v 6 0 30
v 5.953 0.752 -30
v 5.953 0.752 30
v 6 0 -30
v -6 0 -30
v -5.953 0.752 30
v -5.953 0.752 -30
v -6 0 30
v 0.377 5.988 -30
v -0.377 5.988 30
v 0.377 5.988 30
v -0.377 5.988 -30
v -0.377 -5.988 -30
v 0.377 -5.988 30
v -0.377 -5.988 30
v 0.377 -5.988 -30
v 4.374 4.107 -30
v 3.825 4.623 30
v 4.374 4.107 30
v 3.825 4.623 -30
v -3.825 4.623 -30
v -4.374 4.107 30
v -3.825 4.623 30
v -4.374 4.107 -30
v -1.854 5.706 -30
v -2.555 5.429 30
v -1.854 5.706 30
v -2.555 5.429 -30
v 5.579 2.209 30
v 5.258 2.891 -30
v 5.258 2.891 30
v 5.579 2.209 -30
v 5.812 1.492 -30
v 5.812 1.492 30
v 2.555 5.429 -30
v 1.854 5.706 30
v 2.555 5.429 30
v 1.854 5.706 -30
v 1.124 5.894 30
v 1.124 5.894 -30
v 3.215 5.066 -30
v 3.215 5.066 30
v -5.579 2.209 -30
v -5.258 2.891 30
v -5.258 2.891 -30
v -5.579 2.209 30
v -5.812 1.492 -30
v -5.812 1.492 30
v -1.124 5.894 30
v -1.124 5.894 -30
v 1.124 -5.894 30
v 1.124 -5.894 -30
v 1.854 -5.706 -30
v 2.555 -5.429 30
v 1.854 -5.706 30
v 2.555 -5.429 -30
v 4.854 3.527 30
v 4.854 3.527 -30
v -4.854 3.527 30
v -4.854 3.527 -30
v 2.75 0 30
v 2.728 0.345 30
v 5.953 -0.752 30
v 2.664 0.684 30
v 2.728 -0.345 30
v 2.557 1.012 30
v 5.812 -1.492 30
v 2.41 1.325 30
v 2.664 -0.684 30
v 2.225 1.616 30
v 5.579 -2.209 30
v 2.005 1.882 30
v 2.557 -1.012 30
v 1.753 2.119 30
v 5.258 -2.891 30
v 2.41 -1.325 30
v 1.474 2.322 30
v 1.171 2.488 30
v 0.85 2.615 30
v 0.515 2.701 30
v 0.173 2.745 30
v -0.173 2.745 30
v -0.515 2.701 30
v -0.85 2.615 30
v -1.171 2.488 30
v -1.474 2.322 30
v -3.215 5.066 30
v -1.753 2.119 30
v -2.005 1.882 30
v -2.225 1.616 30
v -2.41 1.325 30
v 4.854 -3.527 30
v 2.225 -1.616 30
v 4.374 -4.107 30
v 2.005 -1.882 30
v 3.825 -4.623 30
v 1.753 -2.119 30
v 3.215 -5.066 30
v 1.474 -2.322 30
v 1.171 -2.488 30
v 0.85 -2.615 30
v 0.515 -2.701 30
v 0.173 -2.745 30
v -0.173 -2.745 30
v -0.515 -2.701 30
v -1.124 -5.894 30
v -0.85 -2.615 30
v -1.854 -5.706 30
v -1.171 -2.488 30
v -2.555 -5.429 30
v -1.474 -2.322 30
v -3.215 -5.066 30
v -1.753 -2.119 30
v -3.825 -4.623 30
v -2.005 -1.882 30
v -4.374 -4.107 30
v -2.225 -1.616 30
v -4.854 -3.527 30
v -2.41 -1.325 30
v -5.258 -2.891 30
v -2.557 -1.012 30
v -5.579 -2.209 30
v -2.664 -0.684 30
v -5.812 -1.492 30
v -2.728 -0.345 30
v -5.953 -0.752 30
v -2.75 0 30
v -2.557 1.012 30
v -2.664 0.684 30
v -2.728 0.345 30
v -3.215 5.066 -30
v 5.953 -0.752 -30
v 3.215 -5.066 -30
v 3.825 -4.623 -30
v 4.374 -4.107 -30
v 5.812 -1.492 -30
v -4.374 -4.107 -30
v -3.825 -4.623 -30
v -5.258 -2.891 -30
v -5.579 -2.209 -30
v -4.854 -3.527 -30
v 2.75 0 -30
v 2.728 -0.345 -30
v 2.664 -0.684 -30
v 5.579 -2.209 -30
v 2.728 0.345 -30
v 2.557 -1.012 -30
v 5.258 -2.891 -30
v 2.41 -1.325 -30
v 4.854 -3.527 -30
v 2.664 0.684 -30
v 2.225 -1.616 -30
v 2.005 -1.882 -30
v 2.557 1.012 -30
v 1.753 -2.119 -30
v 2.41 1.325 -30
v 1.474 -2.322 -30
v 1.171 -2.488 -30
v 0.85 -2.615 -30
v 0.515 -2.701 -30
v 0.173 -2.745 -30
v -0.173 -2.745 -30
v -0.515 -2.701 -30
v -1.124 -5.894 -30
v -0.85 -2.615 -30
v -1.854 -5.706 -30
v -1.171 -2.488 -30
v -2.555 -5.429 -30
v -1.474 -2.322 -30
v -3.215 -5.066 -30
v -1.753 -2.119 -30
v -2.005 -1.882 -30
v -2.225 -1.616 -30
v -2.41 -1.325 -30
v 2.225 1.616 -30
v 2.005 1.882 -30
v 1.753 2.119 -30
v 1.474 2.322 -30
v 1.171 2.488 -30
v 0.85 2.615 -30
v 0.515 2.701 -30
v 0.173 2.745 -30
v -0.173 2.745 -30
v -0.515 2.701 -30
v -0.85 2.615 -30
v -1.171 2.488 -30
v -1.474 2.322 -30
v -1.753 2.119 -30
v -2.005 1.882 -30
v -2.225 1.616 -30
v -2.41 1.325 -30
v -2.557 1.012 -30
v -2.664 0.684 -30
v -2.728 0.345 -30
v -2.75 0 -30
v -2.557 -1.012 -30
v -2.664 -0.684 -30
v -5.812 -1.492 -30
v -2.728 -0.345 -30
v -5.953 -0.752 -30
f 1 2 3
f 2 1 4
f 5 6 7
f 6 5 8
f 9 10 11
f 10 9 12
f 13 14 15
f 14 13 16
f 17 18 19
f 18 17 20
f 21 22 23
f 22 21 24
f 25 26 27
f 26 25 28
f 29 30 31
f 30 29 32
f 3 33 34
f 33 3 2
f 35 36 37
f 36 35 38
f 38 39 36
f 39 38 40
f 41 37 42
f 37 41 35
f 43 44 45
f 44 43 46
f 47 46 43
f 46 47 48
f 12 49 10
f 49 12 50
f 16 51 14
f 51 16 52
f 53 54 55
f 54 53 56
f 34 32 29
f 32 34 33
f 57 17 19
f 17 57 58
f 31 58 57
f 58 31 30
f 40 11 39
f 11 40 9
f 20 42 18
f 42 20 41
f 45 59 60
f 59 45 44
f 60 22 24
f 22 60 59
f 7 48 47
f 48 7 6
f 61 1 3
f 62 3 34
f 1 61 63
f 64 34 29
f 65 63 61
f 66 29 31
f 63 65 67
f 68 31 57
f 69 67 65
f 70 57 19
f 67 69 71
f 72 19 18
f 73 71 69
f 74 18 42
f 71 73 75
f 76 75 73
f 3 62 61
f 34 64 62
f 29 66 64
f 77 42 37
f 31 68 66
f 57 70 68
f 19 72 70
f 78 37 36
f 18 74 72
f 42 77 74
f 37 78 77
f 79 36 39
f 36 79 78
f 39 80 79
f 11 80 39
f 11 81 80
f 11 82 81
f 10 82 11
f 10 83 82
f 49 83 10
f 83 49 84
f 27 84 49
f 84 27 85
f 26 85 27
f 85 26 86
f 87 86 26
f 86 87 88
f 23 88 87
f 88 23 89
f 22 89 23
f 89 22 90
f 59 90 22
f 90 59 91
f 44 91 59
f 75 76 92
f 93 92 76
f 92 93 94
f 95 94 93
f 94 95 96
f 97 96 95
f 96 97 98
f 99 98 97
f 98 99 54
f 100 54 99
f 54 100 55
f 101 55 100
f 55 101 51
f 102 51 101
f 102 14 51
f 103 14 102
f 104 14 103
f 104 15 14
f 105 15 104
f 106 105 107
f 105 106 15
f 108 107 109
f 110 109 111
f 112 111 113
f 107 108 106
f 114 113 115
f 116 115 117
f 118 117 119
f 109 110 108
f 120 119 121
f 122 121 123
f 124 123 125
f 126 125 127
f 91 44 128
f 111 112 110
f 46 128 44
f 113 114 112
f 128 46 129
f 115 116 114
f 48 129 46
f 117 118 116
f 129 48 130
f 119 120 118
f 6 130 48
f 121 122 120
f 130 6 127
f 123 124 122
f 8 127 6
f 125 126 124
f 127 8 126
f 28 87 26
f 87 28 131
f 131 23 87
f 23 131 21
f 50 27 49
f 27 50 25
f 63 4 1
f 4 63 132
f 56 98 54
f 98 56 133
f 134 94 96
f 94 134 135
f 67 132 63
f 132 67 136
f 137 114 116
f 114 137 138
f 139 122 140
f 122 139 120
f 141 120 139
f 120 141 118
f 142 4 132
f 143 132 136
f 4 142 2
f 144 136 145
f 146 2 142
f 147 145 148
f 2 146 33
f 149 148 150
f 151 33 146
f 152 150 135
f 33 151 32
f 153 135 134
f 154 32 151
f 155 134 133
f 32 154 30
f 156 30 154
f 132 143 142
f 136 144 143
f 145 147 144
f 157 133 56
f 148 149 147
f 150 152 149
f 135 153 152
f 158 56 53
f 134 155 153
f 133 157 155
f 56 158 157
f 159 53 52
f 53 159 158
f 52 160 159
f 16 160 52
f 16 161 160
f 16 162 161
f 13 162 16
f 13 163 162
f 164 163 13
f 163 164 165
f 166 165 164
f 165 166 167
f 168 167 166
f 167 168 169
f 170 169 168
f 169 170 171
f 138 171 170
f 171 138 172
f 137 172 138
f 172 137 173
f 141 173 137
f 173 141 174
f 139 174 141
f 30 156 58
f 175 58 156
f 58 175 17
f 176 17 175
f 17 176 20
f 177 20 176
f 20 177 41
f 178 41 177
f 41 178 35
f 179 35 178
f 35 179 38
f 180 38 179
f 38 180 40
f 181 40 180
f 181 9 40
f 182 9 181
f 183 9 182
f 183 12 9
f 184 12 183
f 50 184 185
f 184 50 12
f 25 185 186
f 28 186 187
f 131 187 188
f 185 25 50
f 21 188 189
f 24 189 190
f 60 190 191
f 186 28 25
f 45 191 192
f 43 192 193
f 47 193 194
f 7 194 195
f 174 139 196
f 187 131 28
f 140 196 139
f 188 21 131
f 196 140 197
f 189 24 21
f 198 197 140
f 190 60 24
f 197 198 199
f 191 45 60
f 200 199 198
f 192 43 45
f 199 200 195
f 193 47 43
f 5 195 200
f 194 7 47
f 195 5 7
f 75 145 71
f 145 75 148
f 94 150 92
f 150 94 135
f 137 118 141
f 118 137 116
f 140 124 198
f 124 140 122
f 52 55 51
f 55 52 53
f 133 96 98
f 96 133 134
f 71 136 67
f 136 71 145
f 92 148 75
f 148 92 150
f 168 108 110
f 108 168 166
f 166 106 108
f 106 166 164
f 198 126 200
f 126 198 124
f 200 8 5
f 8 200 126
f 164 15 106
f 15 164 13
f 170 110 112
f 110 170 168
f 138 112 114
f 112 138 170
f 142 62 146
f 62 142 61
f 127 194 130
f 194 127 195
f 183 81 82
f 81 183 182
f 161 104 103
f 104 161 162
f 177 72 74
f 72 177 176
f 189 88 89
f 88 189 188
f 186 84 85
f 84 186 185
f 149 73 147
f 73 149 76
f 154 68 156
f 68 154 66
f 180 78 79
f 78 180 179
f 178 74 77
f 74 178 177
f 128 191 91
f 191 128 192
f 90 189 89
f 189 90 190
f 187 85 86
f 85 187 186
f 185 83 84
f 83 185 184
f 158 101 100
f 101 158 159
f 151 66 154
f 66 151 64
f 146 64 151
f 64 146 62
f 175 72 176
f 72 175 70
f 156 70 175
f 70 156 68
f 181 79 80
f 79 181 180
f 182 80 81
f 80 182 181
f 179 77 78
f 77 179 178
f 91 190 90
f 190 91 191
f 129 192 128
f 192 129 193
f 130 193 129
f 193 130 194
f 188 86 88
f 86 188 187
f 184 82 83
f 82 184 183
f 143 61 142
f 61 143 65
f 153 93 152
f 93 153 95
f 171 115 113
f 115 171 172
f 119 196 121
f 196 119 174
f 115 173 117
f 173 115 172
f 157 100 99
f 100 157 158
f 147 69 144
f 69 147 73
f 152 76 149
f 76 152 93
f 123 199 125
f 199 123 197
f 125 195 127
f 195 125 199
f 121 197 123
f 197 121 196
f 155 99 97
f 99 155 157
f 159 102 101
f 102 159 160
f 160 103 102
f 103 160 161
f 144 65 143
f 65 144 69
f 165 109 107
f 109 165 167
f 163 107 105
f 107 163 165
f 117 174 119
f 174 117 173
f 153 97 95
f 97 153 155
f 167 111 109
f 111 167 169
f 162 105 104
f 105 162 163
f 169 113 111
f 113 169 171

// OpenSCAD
$fn = 50;


difference() {
	union() {
		translate(v = [0, 0, -30.0000000000]) {
			cylinder(h = 60, r = 6.0000000000);
		}
	}
	union() {
		translate(v = [0, 0, -100.0000000000]) {
			cylinder(h = 200, r = 2.7500000000);
		}
	}
}
